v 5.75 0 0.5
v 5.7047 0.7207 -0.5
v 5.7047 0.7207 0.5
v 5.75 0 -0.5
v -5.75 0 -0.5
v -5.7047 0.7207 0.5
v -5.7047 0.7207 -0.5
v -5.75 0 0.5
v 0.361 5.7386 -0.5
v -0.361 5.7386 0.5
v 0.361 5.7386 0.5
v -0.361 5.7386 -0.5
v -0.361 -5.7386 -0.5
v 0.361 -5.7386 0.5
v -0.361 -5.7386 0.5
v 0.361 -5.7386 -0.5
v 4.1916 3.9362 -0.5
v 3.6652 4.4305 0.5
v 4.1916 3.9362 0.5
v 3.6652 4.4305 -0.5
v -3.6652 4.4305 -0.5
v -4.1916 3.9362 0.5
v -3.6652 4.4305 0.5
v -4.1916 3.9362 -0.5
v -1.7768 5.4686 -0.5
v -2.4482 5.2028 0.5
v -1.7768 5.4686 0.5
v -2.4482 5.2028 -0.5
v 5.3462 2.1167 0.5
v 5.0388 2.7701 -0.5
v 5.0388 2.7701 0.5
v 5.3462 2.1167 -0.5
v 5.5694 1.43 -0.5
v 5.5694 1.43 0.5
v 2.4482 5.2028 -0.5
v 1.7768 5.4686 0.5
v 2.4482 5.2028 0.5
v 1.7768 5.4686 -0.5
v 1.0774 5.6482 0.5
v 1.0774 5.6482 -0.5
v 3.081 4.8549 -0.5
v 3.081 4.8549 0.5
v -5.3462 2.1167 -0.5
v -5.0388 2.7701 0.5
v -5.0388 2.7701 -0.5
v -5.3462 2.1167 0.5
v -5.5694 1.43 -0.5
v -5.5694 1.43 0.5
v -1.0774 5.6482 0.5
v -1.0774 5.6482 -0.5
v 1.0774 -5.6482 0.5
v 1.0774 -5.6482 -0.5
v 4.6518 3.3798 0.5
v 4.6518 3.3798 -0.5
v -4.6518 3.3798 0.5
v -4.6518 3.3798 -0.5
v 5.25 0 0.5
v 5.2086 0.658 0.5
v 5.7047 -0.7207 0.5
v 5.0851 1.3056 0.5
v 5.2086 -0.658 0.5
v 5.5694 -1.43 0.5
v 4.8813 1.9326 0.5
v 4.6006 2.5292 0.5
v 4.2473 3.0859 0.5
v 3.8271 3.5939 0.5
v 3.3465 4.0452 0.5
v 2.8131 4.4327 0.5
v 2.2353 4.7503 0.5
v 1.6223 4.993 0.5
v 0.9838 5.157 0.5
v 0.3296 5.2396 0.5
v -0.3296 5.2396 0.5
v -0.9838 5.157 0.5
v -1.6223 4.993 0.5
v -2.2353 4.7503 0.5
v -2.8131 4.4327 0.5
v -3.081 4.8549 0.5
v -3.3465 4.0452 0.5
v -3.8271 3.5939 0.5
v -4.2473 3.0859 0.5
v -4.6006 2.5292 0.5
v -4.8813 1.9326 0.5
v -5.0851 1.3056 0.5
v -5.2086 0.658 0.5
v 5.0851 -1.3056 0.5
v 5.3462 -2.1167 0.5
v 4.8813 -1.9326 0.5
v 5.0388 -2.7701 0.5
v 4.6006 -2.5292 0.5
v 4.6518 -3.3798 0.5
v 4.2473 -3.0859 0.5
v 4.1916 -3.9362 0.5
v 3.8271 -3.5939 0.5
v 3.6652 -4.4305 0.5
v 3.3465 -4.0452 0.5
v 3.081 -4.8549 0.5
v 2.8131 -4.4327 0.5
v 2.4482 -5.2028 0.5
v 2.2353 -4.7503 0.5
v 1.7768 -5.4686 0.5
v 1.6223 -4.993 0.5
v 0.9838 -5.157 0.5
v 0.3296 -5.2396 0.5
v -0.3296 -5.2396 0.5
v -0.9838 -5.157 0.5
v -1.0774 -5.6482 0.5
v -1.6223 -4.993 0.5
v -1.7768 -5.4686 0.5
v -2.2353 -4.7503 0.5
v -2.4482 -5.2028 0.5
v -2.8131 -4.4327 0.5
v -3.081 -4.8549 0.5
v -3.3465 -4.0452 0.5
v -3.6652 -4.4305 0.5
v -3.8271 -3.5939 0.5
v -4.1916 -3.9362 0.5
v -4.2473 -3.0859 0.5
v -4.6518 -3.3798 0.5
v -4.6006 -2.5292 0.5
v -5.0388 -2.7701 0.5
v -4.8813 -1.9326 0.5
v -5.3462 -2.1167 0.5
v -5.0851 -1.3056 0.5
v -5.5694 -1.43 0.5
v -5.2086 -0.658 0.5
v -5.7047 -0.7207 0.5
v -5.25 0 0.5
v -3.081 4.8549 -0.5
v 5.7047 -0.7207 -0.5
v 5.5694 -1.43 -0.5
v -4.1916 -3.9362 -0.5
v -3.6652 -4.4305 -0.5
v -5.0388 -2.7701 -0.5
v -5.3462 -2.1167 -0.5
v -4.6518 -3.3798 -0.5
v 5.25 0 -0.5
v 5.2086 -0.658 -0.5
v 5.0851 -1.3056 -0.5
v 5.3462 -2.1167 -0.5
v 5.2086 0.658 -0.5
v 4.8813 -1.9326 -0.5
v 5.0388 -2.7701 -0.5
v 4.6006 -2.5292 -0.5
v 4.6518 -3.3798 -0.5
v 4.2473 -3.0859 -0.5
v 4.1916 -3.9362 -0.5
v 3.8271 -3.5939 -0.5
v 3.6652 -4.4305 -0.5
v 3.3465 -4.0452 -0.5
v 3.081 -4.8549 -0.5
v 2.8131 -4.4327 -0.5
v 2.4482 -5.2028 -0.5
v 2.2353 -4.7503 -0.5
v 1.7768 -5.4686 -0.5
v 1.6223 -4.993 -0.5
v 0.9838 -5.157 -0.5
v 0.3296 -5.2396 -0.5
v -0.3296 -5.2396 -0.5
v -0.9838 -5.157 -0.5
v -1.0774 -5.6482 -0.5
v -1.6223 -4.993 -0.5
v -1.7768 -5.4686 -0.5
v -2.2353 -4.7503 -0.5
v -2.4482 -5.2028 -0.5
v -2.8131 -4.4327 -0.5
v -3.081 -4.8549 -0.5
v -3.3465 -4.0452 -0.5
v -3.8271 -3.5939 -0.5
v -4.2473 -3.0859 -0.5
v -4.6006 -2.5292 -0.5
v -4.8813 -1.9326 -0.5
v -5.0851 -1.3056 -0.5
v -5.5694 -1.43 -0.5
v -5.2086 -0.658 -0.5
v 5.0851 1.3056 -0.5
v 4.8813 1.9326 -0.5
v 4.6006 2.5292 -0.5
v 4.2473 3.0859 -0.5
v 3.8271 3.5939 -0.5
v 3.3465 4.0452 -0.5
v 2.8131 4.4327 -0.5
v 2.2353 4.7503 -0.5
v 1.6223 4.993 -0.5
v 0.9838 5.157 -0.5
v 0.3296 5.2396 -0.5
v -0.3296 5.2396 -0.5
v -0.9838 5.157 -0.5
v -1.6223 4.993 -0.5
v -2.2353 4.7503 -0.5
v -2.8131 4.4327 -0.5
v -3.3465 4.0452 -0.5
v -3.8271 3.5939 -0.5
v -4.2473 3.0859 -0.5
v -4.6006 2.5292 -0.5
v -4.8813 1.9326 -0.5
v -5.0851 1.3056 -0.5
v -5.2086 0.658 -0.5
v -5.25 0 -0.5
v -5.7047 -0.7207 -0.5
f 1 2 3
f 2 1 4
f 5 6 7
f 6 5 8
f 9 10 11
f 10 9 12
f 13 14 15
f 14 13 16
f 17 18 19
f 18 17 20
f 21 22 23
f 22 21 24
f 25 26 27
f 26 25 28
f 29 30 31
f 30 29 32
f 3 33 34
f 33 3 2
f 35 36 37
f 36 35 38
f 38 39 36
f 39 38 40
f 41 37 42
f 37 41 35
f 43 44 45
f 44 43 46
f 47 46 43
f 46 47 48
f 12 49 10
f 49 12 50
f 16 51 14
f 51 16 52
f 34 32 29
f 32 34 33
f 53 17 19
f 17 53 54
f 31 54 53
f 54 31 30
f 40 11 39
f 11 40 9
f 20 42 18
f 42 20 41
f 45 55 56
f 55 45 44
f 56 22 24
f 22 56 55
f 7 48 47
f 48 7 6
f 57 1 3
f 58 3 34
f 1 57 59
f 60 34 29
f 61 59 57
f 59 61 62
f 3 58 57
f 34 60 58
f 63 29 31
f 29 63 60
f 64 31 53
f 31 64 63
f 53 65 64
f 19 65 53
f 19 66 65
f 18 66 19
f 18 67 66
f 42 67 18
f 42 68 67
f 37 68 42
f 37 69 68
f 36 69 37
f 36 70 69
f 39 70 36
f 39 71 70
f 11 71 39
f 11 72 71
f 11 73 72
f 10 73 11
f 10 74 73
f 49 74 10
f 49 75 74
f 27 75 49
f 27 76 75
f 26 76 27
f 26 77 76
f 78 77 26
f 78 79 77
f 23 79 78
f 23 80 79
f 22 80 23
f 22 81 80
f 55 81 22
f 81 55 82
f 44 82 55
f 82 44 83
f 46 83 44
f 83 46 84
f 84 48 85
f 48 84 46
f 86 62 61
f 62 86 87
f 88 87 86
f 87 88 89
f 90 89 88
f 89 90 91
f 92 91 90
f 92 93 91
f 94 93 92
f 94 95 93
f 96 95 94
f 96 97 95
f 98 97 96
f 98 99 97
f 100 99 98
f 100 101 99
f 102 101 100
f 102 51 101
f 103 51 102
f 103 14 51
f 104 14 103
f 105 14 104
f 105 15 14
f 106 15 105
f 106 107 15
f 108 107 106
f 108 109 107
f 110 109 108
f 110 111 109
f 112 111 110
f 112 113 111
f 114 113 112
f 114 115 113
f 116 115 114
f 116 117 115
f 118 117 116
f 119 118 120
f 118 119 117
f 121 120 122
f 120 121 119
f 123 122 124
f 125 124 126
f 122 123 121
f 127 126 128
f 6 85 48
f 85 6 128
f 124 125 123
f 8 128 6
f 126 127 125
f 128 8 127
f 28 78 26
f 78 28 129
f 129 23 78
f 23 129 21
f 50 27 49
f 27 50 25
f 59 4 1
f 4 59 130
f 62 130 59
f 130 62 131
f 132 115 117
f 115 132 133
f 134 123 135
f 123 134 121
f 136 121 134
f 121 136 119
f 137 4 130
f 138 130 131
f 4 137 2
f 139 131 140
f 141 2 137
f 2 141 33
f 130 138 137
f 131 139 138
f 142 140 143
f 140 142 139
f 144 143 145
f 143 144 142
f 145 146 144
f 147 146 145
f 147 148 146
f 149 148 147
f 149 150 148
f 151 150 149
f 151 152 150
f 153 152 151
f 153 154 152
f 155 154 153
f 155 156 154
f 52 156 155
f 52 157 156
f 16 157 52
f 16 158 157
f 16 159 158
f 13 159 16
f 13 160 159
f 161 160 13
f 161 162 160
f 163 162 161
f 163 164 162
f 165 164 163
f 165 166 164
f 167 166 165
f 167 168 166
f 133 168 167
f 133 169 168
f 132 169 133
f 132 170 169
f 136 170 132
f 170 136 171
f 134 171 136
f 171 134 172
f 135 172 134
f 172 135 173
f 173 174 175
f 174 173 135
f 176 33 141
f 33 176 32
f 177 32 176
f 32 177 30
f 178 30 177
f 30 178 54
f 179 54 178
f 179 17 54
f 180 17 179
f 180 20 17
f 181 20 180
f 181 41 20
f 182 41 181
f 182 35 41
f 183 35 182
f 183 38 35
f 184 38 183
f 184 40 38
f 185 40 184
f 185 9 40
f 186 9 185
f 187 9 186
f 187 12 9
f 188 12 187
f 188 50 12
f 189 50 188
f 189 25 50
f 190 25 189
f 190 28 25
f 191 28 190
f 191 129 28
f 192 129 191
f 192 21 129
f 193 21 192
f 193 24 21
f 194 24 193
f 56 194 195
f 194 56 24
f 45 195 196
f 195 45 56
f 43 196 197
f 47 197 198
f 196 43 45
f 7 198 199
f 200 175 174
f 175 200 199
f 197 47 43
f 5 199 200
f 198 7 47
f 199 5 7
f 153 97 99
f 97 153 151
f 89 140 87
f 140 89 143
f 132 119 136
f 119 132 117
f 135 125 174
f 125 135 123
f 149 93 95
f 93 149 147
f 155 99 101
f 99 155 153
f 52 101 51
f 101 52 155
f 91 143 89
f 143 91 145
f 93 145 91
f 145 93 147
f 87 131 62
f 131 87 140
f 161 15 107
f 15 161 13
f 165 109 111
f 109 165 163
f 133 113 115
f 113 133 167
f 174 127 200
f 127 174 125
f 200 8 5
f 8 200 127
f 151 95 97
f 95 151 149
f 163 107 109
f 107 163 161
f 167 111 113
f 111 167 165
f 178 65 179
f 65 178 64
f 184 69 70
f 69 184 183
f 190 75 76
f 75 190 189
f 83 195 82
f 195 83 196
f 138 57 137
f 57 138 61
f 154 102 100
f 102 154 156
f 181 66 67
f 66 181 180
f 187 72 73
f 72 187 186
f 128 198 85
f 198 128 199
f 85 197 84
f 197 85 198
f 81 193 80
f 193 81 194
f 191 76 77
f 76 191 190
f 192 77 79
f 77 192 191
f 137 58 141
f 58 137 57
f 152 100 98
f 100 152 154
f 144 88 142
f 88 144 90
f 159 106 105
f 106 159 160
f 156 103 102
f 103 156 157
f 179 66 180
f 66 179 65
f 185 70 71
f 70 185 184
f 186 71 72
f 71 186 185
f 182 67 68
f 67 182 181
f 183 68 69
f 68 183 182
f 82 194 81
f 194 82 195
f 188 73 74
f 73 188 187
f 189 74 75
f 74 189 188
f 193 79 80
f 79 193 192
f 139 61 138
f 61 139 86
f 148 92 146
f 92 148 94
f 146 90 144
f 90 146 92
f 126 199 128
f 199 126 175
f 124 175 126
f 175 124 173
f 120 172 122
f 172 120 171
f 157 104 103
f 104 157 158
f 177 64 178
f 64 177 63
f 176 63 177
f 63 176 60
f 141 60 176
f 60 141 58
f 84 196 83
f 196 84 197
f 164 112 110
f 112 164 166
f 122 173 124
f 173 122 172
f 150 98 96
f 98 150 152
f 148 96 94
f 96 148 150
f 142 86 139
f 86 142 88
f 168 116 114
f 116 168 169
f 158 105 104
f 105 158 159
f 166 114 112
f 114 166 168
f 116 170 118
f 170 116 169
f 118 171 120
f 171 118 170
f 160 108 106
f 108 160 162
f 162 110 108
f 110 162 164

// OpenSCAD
$fn = 50;


difference() {
	union() {
		translate(v = [0, 0, -0.5000000000]) {
			cylinder(h = 1, r = 5.7500000000);
		}
	}
	union() {
		translate(v = [0, 0, -100.0000000000]) {
			cylinder(h = 200, r = 5.2500000000);
		}
	}
}
